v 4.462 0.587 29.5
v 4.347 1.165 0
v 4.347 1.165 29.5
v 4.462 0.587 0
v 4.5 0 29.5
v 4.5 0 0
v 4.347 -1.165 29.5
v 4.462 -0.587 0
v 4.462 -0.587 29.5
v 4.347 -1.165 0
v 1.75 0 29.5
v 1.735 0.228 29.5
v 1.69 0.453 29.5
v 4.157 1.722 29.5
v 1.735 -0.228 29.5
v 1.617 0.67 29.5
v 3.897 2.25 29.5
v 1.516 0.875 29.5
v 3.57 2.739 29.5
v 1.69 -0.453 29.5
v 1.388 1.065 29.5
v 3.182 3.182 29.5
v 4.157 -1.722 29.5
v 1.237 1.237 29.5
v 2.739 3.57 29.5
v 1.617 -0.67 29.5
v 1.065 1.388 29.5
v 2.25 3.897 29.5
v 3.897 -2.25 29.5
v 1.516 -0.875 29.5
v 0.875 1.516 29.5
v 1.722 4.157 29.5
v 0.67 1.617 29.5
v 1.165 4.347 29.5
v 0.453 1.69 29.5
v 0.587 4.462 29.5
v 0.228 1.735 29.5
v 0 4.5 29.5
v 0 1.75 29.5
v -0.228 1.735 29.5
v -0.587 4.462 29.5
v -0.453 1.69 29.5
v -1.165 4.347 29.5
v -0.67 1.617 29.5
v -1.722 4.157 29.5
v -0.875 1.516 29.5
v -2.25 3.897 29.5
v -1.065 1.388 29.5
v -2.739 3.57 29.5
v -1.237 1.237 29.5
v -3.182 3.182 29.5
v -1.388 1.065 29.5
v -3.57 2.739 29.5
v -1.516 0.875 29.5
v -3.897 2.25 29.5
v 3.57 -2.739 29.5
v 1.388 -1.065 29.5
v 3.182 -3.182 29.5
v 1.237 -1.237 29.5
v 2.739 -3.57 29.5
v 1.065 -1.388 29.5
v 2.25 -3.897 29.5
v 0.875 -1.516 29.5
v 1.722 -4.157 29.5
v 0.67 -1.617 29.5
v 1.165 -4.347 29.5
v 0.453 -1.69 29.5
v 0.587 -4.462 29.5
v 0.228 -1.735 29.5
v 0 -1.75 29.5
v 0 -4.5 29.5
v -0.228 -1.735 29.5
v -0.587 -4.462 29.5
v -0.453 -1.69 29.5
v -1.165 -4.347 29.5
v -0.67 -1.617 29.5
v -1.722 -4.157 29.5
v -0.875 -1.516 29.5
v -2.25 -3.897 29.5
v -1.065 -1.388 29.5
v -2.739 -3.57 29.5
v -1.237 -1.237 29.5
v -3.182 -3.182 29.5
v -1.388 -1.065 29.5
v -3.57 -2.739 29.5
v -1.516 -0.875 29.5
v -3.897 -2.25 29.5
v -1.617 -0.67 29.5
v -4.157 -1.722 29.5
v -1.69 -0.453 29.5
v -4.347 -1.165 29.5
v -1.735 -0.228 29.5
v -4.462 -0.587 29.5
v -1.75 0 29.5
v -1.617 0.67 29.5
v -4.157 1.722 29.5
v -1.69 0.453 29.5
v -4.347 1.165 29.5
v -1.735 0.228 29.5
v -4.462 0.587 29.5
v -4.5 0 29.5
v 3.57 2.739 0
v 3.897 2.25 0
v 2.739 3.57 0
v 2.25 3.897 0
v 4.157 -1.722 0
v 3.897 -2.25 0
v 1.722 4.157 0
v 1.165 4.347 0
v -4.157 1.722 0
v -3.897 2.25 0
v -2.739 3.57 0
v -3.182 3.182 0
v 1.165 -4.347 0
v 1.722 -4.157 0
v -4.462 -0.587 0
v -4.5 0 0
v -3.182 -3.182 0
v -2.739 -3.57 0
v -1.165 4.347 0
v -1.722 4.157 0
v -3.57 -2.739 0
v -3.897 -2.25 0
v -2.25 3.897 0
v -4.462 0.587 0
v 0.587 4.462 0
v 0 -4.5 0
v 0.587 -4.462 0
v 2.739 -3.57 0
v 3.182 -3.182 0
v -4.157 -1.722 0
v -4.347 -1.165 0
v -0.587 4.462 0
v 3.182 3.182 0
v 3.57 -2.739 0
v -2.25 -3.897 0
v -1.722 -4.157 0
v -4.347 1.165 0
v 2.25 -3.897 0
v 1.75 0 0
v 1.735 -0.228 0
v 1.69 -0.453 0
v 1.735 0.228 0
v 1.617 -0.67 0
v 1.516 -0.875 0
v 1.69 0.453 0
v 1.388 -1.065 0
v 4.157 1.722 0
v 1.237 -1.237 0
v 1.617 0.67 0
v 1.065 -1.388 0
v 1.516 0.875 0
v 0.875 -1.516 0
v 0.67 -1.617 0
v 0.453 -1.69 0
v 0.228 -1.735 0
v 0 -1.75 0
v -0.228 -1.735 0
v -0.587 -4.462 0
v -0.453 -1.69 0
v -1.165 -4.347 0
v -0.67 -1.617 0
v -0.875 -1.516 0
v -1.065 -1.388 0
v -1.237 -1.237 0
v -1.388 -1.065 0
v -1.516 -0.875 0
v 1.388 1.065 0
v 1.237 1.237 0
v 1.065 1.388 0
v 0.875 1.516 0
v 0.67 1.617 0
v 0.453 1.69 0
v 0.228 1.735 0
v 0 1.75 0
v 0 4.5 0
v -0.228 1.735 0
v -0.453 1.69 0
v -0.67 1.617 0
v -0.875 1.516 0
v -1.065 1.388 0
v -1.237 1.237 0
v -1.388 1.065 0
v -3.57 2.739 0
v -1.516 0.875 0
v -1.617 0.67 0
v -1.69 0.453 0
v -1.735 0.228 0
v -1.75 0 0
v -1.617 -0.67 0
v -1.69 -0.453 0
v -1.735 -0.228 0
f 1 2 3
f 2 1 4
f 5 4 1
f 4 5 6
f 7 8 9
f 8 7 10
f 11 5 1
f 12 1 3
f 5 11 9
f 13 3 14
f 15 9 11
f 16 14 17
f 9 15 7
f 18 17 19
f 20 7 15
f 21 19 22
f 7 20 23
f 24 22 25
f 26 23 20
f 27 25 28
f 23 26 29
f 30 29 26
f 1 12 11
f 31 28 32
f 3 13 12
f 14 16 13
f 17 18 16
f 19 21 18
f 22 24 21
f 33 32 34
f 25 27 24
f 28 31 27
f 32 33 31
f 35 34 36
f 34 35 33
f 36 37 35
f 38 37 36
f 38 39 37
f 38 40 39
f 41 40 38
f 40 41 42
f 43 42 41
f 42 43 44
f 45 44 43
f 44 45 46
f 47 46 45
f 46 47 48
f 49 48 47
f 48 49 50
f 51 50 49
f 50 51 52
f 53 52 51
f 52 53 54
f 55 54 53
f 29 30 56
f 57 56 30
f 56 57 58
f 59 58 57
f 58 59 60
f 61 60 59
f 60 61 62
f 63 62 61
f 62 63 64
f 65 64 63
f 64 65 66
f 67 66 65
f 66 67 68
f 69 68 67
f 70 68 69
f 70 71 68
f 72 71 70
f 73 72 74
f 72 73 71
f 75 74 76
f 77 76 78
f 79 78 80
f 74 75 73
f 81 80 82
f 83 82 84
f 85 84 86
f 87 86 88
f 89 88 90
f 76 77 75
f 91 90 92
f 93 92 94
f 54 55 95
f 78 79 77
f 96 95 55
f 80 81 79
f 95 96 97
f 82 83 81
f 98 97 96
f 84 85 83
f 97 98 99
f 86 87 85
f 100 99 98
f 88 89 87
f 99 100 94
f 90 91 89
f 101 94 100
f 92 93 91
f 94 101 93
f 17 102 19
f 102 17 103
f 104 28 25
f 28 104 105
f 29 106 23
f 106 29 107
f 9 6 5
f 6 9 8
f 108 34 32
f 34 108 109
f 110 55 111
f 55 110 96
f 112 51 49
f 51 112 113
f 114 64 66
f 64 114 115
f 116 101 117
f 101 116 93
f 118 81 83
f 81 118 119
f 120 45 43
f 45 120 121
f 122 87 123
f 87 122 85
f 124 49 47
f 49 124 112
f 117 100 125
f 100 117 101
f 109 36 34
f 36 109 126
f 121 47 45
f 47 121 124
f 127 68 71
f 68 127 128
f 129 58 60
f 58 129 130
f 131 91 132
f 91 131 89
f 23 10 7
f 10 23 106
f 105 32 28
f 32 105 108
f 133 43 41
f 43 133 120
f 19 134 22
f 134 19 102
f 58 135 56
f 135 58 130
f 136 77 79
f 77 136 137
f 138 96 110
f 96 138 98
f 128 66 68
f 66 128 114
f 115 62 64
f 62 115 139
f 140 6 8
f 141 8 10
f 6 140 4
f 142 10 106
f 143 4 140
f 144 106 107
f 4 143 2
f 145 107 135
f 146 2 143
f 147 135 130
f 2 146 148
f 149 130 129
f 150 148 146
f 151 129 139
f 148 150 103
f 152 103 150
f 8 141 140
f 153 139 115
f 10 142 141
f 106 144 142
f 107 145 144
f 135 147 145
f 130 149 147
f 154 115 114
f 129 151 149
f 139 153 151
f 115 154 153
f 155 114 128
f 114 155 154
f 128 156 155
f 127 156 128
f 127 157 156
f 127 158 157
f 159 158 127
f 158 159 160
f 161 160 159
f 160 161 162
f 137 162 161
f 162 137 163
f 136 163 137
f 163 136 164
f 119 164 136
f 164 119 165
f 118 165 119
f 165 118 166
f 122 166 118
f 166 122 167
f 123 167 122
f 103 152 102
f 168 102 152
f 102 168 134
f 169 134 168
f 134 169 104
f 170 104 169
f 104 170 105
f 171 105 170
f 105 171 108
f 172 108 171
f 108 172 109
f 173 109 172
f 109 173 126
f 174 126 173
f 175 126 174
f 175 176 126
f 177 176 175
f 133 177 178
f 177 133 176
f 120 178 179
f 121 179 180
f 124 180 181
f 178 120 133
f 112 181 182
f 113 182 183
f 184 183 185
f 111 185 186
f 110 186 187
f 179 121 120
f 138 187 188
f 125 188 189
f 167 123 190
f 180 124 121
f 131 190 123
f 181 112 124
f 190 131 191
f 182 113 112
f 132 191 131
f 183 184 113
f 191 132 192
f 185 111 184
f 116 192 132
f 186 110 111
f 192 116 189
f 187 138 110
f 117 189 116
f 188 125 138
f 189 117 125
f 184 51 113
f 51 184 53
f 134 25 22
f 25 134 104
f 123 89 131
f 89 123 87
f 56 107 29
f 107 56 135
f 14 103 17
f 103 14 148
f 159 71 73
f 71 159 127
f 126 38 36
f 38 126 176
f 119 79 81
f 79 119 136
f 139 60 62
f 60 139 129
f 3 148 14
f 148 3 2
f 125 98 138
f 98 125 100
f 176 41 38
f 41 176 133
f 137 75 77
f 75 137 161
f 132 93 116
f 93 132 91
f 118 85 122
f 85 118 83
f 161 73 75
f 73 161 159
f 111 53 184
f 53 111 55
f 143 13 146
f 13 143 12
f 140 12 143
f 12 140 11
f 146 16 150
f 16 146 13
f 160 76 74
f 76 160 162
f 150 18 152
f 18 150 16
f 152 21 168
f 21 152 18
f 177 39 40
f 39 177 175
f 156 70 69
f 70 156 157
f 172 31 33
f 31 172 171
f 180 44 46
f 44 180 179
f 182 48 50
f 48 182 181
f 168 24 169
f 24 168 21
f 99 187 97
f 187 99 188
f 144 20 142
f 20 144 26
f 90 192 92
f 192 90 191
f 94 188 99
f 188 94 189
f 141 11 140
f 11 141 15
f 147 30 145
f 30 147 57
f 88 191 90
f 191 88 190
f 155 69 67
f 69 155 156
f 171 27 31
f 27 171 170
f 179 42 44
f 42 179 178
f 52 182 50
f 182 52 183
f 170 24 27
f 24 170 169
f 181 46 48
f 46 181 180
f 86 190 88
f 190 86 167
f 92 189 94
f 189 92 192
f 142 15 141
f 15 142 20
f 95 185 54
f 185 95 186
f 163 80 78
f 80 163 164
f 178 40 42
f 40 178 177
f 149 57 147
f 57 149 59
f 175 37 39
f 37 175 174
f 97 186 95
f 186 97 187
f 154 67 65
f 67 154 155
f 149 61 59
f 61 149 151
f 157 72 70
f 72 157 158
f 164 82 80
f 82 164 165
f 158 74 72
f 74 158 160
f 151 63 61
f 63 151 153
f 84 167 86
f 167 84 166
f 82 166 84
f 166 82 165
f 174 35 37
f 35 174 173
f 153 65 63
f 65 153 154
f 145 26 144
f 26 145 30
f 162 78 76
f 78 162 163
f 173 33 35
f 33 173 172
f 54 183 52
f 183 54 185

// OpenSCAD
// file: parameters.scad
// =============================================================================
// Gen-BY — nightly 2026-10-11 (physics_scorer, honest magpylib watts)
// Stator-only upgrade for an existing Gen-BU: the R66 rotors and Ø158 steel are reused unchanged, and a new 12-bobbin stator with thinner 7.2 mm copper (gap 10.70 → 9.80 mm) and longer r48–84 bobbins (more copper outside the magnet ring) replaces the old one, together with a shorter gap sleeve and wider-spaced frame rods. It is the modular swap path: no new magnets or steel.
// Clocking 0 deg (magnets N facing S) + D-flat keyed bore + index notch + flip-symmetric hole map.
// Windable 2-piece bobbin; turns = physics_scorer turns_fit; copper only between flanges.
// Steel back-iron: 2× Ø158 × 4.76 mm (3/16") mild-steel discs (steel_backiron_disc.dxf); magnets sit ON the steel
// (through-pockets) -> score with --back-iron. Night 2026-10-11.
// =============================================================================
topology            = "dual_rotor";

// --- Wire / winding (physics_scorer winding-fit) -------------------------------
wire_awg            = 26;
wire_od             = 0.45;     // insulated OD mm (bare 0.405)
fill_realistic      = 0.65;     // insulated-wire area / window (DENSE layered wind with a jig; scorer cap 0.65)
turns               = 410;       // = physics_scorer turns_fit (do NOT raise)
coil_former_type    = "bobbin";
coil_core_inset     = 13.95;     // radial copper build: hub = copper boundary inset by this
wind_build_axial    = 0.0;      // nothing proud of the flanges
wind_build_radial   = 0.0;

// --- Bobbin (base + lid) ---------------------------------------------------------
coil_id_r           = 48.00;    // copper boundary sector
coil_od_r           = 84.00;
span_deg            = 26.06;    // = pitch - 2*asin((wall+0.85)/coil_id_r) -> >=1.2 mm stator web
former_web          = 7.20;     // copper height between flanges (TALL copper: steel keeps Bz up)
flange_t            = 0.80;     // >= 0.8 mm FDM wall rule (tall winds push on the flanges)
wall                = 0.80;     // flange lip beyond copper
former_bare_h       = former_web + 2 * flange_t;
coil_envelope_h     = former_bare_h + 2 * wind_build_axial;
tab_w               = 7.0;
tab_len             = 7.0;
tab_h               = former_bare_h / 2;
pin_d               = 1.9;      // 1.75 mm filament locating pin
coil_mount_r        = coil_od_r + 0.2 + 4.0;
lead_y              = 1.6;
lead_slot_w         = 0.9;
lead_groove_d       = 0.6;

// --- Gap -------------------------------------------------------------------------
run_clear           = 0.50;     // rotor face -> flange
gap_spacer_h        = run_clear + wind_build_axial;
m2m                 = coil_envelope_h + 2 * run_clear;   // rotor face to rotor face (= gap_sleeve length)

// --- Stator ----------------------------------------------------------------------
coil_stations       = 12;
bay_clear           = 0.25;
stator_thick        = former_bare_h;                        // bobbins flush both faces
stator_od           = 186.0;
shaft_clear_stator  = 14.0;     // stator is static; gap sleeve OD 12 spins inside

// --- Rotor(s) --------------------------------------------------------------------
magnet_Br           = 1.43;     // N52
magnet_d_large      = 20.0;
magnet_h_large      = 5.0;      // one O20x5 per pocket
magnet_h_small      = 5.0;      // unused: no O5 pockets in this kit
halbach_magnetisation = "none";  // NO O5 assist magnets in this kit (scan: they lower the 4-pole score)
rotor_b_same_axis   = true;     // same-index magnets share one axis: N faces S across the gap
large_pocket_d      = 20.3;
small_pocket_d      = 5.3;
pocket_h            = 5.00;     // THROUGH the carrier: magnet back face sits on the steel disc (FLUSH seat: carrier = magnet height, magnet face level with the rotor face)
large_n             = 8;
R_large             = 66.0;
small_r_list        = [];       // no O5 pockets
carrier_od          = 158.0;
carrier_thick       = pocket_h;
hub_h               = 12.0;     // > steel_t + insert: radial set-screw clears the steel
hub_od              = 24.0;     // slim hub so the M4 brace rods fit at R~18 inside the coil ring
hub_insert_d        = 4.0;      // M3 heat-set insert, radial, bears on the D-flat
rotor_b_offset_deg  = 0.0;      // CLOCKING: magnets directly opposite
shaft_key           = "dflat";
dflat_depth         = 0.5;      // 8 mm shaft with 0.5 mm flat (7.5 across flat)
index_notch_d       = 3.0;

// --- Steel back-iron (buyable laser-cut) -------------------------------------------
steel_t             = 4.76;      // mild steel thickness (image method ignores it; sized from steel_flux.py so the return path stays well below saturation)
steel_center_hole   = 26.0;     // slips over the rotor hub (OD 24)
steel_od            = carrier_od;   // steel disc OD = rotor carrier OD

// --- Modular MAX interface ----------------------------------------------------------
shaft_bore          = 8.35;
dflat_x             = 4.0 - dflat_depth + (shaft_bore - 8.0) / 2;
bearing_d           = 21.85;
bearing_h           = 7.2;
m3_clear            = 3.5;
bolt_r_inner        = 30.0;     // M3 steel-disc clamp bolts (inside the magnet ring)
bolt_n_inner        = 4;
bolt_inner_angles   = [0, 90, 180, 270];
bolt_r_outer        = 44.0;     // second M3 steel-disc clamp ring
bolt_outer_angles   = [67.5, 112.5, 247.5, 292.5];
flange_bolt_r       = 88.0;     // frame rods: OUTSIDE the rotor OD (rotors spin inside them)
flange_bolt_n       = 4;
flange_bolt_offset  = 45.00;    // between coil stations -> never cuts a lead groove/tab
brace_r             = 18.0;
brace_d             = 4.3;      // temporary M4 jack rods (assembly only)
brace_n             = 4;
brace_angles        = [45, 135, 225, 315];          // flip-symmetric

spacer_pad_od       = 14.0;
spacer_pad_id       = m3_clear;
endbell_od          = 186.0;
endbell_thick       = 8.0;
endbell_shaft_clear = 10.0;
collar_h            = 10.0;
standoff_od         = 9.0;
frame_standoff_h    = run_clear + carrier_thick + hub_h + collar_h + 2.0;
sleeve_od           = 12.0;
plate_max_mm        = 410;

$fn = 64;
// main file
// Gen-BY — frame standoff tube between stator and an endbell, on each M3 frame rod (outside rotor OD).
// Print x4. Height = frame_standoff_h (rotor + steel + hub + collar + running clearance).
include <parameters.scad>;
$fn = 48;
difference() {
    cylinder(d=standoff_od, h=frame_standoff_h);
    translate([0, 0, -0.1]) cylinder(d=m3_clear, h=frame_standoff_h + 0.2);
}
